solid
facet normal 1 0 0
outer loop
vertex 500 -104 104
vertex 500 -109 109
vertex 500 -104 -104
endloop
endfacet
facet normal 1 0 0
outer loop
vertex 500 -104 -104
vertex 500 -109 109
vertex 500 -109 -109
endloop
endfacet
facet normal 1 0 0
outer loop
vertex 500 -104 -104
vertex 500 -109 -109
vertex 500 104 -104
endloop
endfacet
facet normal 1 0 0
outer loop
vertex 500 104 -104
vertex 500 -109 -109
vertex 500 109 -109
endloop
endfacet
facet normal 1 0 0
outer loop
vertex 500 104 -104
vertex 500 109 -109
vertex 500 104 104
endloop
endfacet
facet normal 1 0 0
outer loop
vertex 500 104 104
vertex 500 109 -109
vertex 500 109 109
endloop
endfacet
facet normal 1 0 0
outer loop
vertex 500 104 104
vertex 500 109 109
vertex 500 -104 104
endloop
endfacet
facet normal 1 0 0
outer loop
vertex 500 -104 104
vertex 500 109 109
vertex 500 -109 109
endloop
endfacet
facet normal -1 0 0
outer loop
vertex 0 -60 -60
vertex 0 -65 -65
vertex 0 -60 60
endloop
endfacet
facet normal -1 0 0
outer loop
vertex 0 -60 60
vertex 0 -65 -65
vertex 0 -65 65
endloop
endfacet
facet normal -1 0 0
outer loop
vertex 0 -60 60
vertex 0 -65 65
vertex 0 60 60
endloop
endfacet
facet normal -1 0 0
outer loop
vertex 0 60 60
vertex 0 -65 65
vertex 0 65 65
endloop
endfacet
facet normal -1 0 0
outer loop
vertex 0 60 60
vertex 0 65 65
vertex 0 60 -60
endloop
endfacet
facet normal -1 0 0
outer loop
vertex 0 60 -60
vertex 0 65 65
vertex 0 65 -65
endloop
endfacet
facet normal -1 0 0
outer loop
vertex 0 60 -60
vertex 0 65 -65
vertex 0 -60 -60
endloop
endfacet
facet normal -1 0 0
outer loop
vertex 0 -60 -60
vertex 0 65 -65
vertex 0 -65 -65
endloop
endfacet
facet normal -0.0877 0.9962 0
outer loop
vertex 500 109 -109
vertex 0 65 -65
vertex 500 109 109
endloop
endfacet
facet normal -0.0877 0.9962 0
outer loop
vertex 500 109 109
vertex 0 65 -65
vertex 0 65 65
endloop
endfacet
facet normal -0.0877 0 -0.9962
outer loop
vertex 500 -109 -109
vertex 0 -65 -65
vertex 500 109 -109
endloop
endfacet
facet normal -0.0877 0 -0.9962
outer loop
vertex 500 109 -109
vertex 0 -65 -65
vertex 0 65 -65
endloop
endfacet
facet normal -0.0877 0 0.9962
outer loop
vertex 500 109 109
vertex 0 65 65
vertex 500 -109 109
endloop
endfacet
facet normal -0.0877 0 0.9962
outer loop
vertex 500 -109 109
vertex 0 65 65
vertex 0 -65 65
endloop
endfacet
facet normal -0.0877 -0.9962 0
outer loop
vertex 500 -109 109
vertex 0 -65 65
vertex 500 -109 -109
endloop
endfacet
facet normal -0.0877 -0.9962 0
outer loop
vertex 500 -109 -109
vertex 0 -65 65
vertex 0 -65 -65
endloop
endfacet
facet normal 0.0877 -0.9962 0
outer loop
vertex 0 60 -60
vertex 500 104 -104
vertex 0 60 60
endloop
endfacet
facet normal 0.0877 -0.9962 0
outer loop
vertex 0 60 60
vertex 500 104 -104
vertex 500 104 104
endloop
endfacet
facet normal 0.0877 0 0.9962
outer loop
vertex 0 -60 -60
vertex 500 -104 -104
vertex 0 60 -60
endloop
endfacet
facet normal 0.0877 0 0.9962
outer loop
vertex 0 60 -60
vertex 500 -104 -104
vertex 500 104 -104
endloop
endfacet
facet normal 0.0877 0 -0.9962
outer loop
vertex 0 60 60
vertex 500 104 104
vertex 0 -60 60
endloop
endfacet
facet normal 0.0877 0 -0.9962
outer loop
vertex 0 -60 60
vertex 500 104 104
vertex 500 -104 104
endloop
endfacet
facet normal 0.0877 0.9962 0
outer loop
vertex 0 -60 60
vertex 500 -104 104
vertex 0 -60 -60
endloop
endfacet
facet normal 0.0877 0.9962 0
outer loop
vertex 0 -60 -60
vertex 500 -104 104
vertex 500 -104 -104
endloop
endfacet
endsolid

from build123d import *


with BuildPart() as part:
    # Sketch1 → Loft1 section 0
    with BuildSketch(Plane(origin=(0, 0, 0), x_dir=(0, 0, -1), z_dir=(1, 0, 0))):
        with BuildLine():
            Line((-65, 65), (65, 65))
            Line((65, 65), (65, -65))
            Line((65, -65), (-65, -65))
            Line((-65, -65), (-65, 65))
        make_face()
    # Sketch2 → Loft1 section 1
    with BuildSketch(Plane(origin=(500, 0, 0), x_dir=(0, 0, -1), z_dir=(1, 0, 0))):
        with BuildLine():
            Line((-109, 109), (109, 109))
            Line((109, 109), (109, -109))
            Line((109, -109), (-109, -109))
            Line((-109, -109), (-109, 109))
        make_face()
    loft()

    # Sketch1<3> → Cut-Loft1 section 0
    with BuildSketch(Plane(origin=(0, 0, 0), x_dir=(0, 0, -1), z_dir=(1, 0, 0))):
        with BuildLine():
            Line((-60, 60), (60, 60))
            Line((60, 60), (60, -60))
            Line((60, -60), (-60, -60))
            Line((-60, -60), (-60, 60))
        make_face()
    # Sketch2<3> → Cut-Loft1 section 1
    with BuildSketch(Plane(origin=(500, 0, 0), x_dir=(0, 0, -1), z_dir=(1, 0, 0))):
        with BuildLine():
            Line((-104, 104), (104, 104))
            Line((104, 104), (104, -104))
            Line((104, -104), (-104, -104))
            Line((-104, -104), (-104, 104))
        make_face()
    loft(mode=Mode.SUBTRACT)


solid = part.part
